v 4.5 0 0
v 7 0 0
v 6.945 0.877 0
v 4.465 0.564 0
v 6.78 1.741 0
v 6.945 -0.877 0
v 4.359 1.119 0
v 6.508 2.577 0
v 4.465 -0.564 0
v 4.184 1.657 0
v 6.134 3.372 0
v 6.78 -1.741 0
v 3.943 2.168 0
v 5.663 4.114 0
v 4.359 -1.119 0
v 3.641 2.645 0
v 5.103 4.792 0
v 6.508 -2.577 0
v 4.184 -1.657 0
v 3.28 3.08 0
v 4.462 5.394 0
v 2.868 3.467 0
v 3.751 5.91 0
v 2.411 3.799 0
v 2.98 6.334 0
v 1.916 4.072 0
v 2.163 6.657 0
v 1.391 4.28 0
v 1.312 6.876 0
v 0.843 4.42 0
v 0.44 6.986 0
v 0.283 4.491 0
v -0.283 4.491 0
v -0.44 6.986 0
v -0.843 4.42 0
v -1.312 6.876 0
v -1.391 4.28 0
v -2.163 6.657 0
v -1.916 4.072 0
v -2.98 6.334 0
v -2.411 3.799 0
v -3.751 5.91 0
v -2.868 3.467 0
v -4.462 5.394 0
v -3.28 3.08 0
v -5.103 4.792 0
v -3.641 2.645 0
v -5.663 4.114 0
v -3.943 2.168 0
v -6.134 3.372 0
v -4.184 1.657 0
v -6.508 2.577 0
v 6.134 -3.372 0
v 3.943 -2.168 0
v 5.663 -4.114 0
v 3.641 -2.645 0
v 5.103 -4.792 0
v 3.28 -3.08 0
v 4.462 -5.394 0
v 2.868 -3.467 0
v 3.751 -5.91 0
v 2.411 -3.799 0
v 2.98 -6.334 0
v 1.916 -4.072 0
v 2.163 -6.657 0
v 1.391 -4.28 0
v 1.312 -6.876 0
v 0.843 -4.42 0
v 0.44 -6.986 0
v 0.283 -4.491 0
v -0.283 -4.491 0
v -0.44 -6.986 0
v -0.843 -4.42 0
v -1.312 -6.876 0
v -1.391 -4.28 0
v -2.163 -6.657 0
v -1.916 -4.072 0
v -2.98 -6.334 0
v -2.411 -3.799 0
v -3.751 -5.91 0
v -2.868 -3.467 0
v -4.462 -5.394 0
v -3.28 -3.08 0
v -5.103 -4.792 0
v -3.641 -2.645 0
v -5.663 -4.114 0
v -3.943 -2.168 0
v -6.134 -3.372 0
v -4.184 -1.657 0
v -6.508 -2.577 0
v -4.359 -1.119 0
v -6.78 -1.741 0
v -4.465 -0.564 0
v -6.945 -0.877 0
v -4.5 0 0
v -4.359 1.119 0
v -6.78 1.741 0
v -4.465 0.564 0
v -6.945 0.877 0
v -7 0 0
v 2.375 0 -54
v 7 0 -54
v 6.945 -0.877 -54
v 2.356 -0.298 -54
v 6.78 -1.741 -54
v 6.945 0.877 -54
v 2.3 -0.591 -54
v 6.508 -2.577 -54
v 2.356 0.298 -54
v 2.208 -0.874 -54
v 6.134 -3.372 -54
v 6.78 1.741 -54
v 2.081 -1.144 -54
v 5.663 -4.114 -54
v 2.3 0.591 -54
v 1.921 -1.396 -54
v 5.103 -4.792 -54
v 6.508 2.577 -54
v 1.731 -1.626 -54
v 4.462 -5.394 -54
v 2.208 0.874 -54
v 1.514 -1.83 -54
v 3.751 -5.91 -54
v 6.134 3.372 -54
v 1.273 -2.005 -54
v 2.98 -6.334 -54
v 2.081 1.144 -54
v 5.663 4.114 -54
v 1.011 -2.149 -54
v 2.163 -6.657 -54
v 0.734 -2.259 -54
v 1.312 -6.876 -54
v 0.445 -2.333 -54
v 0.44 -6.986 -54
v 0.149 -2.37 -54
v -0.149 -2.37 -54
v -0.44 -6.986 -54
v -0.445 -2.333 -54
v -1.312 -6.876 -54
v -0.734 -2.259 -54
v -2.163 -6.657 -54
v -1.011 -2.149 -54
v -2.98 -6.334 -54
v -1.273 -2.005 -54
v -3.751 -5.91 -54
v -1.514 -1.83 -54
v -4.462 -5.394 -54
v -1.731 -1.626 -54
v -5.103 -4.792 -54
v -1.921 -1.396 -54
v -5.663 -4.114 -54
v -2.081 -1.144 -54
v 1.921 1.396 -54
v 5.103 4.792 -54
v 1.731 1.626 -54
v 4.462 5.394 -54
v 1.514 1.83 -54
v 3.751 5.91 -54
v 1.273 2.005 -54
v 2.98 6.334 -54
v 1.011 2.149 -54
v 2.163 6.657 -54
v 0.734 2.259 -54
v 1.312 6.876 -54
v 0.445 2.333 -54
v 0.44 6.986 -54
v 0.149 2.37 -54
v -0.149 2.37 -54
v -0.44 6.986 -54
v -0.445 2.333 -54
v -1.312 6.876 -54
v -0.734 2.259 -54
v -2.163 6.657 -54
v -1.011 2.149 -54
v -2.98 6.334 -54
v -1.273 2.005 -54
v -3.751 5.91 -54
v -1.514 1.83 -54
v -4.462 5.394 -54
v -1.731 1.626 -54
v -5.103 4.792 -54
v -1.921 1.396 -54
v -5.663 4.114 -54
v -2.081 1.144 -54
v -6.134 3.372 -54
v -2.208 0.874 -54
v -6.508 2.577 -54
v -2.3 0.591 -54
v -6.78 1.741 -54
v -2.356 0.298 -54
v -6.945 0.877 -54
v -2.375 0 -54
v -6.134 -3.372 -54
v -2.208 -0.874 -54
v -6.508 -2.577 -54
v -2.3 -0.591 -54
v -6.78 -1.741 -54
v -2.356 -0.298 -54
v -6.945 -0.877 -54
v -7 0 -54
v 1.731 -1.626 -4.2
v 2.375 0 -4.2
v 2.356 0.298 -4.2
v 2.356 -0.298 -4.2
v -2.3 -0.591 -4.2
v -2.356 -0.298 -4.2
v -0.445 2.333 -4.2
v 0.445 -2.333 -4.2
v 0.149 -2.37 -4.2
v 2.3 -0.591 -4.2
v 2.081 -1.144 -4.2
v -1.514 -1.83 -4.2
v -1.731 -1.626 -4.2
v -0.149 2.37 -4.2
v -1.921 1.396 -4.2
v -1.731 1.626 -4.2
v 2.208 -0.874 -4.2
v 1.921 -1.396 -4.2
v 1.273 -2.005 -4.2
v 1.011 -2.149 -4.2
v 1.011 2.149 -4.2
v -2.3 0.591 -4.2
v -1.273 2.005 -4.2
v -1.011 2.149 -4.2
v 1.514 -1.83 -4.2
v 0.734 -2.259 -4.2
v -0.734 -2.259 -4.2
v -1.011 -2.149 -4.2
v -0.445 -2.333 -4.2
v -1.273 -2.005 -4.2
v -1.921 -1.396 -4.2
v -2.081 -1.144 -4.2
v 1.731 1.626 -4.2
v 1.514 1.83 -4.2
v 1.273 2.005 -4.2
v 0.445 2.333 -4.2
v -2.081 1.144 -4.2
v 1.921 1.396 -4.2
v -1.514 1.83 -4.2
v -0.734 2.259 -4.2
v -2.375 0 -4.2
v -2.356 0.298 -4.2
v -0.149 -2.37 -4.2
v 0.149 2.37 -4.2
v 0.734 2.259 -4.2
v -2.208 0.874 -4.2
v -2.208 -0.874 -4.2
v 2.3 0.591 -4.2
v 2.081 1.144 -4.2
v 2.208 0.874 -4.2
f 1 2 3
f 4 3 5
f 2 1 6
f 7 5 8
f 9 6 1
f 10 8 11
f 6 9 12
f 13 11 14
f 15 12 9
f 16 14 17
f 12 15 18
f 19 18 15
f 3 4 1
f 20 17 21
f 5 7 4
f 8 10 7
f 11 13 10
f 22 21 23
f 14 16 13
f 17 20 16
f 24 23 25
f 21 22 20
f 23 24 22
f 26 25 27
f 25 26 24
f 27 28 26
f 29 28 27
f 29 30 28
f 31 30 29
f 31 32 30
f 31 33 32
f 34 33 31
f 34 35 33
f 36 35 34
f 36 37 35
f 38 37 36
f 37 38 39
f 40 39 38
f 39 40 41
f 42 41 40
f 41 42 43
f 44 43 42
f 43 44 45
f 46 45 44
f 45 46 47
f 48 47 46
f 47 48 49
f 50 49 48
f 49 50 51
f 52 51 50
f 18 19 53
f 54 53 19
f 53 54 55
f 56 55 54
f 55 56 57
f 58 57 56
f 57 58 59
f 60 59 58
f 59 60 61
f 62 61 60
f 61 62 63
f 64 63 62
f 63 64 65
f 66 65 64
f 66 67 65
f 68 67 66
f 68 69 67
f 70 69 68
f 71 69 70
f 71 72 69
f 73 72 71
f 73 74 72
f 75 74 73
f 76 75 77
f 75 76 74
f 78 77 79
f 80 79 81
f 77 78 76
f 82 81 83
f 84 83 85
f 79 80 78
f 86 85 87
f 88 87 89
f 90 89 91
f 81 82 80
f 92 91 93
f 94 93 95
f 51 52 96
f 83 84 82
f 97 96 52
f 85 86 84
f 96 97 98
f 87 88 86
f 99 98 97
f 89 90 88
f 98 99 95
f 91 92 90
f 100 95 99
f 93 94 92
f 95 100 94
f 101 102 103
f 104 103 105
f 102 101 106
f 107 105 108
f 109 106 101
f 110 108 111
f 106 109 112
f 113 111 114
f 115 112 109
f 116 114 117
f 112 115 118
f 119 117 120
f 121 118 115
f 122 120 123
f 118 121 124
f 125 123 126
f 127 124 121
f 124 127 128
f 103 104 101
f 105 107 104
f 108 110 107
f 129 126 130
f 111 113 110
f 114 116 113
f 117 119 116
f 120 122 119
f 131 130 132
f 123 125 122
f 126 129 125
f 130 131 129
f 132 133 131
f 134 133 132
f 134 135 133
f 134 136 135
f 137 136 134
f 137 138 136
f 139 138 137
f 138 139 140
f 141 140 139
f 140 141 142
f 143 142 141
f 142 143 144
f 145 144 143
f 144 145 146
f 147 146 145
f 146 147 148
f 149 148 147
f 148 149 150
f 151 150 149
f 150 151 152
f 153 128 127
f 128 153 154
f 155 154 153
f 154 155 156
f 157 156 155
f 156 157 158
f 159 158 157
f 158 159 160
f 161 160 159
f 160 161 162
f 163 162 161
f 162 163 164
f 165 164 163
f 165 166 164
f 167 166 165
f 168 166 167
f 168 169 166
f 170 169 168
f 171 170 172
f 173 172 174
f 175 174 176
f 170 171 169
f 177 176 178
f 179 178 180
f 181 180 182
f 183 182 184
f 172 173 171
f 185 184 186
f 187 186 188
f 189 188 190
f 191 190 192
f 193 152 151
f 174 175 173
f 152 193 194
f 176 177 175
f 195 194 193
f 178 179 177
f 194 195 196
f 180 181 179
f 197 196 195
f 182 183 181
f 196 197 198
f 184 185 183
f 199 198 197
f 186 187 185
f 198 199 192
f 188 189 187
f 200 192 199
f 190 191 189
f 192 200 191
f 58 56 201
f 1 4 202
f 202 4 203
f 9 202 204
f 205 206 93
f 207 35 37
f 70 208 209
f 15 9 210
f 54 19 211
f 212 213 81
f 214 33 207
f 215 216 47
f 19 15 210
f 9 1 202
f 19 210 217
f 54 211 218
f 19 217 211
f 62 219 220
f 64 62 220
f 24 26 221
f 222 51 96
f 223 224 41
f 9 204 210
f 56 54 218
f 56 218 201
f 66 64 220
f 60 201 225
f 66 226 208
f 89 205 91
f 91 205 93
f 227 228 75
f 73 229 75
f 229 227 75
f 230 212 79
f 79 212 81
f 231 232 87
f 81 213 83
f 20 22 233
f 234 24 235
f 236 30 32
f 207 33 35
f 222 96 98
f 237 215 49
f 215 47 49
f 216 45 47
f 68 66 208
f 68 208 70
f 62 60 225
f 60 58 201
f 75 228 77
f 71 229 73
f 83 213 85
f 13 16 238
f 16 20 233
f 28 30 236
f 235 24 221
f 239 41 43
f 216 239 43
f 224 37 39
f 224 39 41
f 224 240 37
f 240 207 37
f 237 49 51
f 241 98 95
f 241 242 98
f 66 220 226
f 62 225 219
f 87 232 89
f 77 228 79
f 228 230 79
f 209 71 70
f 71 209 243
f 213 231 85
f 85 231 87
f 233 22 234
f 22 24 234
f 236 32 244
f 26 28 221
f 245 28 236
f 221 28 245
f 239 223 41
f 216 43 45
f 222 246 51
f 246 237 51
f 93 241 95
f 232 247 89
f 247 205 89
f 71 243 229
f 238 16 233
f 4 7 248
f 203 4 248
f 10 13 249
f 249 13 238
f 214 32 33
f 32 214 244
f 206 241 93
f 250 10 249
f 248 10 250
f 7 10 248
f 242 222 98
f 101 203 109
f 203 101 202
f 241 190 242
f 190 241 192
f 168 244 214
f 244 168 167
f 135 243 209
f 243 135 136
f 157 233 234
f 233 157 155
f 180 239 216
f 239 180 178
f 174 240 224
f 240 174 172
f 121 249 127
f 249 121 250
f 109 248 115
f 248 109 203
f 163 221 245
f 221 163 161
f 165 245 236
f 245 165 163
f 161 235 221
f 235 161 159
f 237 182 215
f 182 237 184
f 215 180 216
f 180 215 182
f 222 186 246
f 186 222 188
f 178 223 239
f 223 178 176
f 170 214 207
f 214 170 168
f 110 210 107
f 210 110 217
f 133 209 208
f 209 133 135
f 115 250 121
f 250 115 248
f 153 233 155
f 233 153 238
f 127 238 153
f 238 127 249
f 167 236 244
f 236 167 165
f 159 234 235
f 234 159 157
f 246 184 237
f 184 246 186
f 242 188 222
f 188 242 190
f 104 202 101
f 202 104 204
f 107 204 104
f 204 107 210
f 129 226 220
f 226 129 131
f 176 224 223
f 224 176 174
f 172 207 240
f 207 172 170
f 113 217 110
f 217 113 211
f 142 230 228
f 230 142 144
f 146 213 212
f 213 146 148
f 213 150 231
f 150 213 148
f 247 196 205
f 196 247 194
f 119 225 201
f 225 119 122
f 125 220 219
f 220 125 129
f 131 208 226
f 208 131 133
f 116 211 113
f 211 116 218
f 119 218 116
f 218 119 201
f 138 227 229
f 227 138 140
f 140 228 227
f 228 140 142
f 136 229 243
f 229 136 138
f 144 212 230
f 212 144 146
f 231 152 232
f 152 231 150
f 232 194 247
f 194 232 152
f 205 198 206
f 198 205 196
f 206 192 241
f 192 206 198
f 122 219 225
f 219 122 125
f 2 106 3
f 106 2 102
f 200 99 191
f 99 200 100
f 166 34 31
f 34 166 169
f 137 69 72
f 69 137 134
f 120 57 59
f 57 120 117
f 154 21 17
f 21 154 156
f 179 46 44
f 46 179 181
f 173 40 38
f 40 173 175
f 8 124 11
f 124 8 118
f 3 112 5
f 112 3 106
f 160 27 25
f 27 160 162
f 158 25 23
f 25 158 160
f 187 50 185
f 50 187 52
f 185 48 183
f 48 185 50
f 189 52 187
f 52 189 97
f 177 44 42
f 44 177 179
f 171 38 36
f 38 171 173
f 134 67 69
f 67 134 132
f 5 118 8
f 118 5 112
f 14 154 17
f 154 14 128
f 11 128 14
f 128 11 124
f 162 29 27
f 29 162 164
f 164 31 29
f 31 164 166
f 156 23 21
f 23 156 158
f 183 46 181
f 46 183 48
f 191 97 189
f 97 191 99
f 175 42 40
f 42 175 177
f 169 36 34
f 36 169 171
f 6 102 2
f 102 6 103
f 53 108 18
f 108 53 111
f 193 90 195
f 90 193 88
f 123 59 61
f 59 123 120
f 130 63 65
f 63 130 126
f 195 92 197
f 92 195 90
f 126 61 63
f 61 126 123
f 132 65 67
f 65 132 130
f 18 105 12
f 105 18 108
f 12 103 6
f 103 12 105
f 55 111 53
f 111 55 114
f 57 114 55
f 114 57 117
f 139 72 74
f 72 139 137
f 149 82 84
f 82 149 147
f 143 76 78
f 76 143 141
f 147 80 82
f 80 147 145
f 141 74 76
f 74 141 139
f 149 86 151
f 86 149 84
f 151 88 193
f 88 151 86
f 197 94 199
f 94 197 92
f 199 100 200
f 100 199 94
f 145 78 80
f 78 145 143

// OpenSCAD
$fn = 50;


difference() {
	union() {
		translate(v = [0, 0, -54.0000000000]) {
			cylinder(h = 54, r = 7.0000000000);
		}
	}
	union() {
		translate(v = [0, 0, 0]) {
			rotate(a = [0, 0, 0]) {
				difference() {
					union() {
						#translate(v = [0, 0, -54.0000000000]) {
							cylinder(h = 54, r = 2.2500000000);
						}
						#translate(v = [0, 0, -4.2000000000]) {
							cylinder(h = 4.2000000000, r1 = 2.3750000000, r2 = 4.5000000000);
						}
						#translate(v = [0, 0, -54.0000000000]) {
							cylinder(h = 54, r = 2.3750000000);
						}
						#translate(v = [0, 0, -54.0000000000]) {
							cylinder(h = 54, r = 2.2500000000);
						}
					}
					union();
				}
			}
		}
	}
}
